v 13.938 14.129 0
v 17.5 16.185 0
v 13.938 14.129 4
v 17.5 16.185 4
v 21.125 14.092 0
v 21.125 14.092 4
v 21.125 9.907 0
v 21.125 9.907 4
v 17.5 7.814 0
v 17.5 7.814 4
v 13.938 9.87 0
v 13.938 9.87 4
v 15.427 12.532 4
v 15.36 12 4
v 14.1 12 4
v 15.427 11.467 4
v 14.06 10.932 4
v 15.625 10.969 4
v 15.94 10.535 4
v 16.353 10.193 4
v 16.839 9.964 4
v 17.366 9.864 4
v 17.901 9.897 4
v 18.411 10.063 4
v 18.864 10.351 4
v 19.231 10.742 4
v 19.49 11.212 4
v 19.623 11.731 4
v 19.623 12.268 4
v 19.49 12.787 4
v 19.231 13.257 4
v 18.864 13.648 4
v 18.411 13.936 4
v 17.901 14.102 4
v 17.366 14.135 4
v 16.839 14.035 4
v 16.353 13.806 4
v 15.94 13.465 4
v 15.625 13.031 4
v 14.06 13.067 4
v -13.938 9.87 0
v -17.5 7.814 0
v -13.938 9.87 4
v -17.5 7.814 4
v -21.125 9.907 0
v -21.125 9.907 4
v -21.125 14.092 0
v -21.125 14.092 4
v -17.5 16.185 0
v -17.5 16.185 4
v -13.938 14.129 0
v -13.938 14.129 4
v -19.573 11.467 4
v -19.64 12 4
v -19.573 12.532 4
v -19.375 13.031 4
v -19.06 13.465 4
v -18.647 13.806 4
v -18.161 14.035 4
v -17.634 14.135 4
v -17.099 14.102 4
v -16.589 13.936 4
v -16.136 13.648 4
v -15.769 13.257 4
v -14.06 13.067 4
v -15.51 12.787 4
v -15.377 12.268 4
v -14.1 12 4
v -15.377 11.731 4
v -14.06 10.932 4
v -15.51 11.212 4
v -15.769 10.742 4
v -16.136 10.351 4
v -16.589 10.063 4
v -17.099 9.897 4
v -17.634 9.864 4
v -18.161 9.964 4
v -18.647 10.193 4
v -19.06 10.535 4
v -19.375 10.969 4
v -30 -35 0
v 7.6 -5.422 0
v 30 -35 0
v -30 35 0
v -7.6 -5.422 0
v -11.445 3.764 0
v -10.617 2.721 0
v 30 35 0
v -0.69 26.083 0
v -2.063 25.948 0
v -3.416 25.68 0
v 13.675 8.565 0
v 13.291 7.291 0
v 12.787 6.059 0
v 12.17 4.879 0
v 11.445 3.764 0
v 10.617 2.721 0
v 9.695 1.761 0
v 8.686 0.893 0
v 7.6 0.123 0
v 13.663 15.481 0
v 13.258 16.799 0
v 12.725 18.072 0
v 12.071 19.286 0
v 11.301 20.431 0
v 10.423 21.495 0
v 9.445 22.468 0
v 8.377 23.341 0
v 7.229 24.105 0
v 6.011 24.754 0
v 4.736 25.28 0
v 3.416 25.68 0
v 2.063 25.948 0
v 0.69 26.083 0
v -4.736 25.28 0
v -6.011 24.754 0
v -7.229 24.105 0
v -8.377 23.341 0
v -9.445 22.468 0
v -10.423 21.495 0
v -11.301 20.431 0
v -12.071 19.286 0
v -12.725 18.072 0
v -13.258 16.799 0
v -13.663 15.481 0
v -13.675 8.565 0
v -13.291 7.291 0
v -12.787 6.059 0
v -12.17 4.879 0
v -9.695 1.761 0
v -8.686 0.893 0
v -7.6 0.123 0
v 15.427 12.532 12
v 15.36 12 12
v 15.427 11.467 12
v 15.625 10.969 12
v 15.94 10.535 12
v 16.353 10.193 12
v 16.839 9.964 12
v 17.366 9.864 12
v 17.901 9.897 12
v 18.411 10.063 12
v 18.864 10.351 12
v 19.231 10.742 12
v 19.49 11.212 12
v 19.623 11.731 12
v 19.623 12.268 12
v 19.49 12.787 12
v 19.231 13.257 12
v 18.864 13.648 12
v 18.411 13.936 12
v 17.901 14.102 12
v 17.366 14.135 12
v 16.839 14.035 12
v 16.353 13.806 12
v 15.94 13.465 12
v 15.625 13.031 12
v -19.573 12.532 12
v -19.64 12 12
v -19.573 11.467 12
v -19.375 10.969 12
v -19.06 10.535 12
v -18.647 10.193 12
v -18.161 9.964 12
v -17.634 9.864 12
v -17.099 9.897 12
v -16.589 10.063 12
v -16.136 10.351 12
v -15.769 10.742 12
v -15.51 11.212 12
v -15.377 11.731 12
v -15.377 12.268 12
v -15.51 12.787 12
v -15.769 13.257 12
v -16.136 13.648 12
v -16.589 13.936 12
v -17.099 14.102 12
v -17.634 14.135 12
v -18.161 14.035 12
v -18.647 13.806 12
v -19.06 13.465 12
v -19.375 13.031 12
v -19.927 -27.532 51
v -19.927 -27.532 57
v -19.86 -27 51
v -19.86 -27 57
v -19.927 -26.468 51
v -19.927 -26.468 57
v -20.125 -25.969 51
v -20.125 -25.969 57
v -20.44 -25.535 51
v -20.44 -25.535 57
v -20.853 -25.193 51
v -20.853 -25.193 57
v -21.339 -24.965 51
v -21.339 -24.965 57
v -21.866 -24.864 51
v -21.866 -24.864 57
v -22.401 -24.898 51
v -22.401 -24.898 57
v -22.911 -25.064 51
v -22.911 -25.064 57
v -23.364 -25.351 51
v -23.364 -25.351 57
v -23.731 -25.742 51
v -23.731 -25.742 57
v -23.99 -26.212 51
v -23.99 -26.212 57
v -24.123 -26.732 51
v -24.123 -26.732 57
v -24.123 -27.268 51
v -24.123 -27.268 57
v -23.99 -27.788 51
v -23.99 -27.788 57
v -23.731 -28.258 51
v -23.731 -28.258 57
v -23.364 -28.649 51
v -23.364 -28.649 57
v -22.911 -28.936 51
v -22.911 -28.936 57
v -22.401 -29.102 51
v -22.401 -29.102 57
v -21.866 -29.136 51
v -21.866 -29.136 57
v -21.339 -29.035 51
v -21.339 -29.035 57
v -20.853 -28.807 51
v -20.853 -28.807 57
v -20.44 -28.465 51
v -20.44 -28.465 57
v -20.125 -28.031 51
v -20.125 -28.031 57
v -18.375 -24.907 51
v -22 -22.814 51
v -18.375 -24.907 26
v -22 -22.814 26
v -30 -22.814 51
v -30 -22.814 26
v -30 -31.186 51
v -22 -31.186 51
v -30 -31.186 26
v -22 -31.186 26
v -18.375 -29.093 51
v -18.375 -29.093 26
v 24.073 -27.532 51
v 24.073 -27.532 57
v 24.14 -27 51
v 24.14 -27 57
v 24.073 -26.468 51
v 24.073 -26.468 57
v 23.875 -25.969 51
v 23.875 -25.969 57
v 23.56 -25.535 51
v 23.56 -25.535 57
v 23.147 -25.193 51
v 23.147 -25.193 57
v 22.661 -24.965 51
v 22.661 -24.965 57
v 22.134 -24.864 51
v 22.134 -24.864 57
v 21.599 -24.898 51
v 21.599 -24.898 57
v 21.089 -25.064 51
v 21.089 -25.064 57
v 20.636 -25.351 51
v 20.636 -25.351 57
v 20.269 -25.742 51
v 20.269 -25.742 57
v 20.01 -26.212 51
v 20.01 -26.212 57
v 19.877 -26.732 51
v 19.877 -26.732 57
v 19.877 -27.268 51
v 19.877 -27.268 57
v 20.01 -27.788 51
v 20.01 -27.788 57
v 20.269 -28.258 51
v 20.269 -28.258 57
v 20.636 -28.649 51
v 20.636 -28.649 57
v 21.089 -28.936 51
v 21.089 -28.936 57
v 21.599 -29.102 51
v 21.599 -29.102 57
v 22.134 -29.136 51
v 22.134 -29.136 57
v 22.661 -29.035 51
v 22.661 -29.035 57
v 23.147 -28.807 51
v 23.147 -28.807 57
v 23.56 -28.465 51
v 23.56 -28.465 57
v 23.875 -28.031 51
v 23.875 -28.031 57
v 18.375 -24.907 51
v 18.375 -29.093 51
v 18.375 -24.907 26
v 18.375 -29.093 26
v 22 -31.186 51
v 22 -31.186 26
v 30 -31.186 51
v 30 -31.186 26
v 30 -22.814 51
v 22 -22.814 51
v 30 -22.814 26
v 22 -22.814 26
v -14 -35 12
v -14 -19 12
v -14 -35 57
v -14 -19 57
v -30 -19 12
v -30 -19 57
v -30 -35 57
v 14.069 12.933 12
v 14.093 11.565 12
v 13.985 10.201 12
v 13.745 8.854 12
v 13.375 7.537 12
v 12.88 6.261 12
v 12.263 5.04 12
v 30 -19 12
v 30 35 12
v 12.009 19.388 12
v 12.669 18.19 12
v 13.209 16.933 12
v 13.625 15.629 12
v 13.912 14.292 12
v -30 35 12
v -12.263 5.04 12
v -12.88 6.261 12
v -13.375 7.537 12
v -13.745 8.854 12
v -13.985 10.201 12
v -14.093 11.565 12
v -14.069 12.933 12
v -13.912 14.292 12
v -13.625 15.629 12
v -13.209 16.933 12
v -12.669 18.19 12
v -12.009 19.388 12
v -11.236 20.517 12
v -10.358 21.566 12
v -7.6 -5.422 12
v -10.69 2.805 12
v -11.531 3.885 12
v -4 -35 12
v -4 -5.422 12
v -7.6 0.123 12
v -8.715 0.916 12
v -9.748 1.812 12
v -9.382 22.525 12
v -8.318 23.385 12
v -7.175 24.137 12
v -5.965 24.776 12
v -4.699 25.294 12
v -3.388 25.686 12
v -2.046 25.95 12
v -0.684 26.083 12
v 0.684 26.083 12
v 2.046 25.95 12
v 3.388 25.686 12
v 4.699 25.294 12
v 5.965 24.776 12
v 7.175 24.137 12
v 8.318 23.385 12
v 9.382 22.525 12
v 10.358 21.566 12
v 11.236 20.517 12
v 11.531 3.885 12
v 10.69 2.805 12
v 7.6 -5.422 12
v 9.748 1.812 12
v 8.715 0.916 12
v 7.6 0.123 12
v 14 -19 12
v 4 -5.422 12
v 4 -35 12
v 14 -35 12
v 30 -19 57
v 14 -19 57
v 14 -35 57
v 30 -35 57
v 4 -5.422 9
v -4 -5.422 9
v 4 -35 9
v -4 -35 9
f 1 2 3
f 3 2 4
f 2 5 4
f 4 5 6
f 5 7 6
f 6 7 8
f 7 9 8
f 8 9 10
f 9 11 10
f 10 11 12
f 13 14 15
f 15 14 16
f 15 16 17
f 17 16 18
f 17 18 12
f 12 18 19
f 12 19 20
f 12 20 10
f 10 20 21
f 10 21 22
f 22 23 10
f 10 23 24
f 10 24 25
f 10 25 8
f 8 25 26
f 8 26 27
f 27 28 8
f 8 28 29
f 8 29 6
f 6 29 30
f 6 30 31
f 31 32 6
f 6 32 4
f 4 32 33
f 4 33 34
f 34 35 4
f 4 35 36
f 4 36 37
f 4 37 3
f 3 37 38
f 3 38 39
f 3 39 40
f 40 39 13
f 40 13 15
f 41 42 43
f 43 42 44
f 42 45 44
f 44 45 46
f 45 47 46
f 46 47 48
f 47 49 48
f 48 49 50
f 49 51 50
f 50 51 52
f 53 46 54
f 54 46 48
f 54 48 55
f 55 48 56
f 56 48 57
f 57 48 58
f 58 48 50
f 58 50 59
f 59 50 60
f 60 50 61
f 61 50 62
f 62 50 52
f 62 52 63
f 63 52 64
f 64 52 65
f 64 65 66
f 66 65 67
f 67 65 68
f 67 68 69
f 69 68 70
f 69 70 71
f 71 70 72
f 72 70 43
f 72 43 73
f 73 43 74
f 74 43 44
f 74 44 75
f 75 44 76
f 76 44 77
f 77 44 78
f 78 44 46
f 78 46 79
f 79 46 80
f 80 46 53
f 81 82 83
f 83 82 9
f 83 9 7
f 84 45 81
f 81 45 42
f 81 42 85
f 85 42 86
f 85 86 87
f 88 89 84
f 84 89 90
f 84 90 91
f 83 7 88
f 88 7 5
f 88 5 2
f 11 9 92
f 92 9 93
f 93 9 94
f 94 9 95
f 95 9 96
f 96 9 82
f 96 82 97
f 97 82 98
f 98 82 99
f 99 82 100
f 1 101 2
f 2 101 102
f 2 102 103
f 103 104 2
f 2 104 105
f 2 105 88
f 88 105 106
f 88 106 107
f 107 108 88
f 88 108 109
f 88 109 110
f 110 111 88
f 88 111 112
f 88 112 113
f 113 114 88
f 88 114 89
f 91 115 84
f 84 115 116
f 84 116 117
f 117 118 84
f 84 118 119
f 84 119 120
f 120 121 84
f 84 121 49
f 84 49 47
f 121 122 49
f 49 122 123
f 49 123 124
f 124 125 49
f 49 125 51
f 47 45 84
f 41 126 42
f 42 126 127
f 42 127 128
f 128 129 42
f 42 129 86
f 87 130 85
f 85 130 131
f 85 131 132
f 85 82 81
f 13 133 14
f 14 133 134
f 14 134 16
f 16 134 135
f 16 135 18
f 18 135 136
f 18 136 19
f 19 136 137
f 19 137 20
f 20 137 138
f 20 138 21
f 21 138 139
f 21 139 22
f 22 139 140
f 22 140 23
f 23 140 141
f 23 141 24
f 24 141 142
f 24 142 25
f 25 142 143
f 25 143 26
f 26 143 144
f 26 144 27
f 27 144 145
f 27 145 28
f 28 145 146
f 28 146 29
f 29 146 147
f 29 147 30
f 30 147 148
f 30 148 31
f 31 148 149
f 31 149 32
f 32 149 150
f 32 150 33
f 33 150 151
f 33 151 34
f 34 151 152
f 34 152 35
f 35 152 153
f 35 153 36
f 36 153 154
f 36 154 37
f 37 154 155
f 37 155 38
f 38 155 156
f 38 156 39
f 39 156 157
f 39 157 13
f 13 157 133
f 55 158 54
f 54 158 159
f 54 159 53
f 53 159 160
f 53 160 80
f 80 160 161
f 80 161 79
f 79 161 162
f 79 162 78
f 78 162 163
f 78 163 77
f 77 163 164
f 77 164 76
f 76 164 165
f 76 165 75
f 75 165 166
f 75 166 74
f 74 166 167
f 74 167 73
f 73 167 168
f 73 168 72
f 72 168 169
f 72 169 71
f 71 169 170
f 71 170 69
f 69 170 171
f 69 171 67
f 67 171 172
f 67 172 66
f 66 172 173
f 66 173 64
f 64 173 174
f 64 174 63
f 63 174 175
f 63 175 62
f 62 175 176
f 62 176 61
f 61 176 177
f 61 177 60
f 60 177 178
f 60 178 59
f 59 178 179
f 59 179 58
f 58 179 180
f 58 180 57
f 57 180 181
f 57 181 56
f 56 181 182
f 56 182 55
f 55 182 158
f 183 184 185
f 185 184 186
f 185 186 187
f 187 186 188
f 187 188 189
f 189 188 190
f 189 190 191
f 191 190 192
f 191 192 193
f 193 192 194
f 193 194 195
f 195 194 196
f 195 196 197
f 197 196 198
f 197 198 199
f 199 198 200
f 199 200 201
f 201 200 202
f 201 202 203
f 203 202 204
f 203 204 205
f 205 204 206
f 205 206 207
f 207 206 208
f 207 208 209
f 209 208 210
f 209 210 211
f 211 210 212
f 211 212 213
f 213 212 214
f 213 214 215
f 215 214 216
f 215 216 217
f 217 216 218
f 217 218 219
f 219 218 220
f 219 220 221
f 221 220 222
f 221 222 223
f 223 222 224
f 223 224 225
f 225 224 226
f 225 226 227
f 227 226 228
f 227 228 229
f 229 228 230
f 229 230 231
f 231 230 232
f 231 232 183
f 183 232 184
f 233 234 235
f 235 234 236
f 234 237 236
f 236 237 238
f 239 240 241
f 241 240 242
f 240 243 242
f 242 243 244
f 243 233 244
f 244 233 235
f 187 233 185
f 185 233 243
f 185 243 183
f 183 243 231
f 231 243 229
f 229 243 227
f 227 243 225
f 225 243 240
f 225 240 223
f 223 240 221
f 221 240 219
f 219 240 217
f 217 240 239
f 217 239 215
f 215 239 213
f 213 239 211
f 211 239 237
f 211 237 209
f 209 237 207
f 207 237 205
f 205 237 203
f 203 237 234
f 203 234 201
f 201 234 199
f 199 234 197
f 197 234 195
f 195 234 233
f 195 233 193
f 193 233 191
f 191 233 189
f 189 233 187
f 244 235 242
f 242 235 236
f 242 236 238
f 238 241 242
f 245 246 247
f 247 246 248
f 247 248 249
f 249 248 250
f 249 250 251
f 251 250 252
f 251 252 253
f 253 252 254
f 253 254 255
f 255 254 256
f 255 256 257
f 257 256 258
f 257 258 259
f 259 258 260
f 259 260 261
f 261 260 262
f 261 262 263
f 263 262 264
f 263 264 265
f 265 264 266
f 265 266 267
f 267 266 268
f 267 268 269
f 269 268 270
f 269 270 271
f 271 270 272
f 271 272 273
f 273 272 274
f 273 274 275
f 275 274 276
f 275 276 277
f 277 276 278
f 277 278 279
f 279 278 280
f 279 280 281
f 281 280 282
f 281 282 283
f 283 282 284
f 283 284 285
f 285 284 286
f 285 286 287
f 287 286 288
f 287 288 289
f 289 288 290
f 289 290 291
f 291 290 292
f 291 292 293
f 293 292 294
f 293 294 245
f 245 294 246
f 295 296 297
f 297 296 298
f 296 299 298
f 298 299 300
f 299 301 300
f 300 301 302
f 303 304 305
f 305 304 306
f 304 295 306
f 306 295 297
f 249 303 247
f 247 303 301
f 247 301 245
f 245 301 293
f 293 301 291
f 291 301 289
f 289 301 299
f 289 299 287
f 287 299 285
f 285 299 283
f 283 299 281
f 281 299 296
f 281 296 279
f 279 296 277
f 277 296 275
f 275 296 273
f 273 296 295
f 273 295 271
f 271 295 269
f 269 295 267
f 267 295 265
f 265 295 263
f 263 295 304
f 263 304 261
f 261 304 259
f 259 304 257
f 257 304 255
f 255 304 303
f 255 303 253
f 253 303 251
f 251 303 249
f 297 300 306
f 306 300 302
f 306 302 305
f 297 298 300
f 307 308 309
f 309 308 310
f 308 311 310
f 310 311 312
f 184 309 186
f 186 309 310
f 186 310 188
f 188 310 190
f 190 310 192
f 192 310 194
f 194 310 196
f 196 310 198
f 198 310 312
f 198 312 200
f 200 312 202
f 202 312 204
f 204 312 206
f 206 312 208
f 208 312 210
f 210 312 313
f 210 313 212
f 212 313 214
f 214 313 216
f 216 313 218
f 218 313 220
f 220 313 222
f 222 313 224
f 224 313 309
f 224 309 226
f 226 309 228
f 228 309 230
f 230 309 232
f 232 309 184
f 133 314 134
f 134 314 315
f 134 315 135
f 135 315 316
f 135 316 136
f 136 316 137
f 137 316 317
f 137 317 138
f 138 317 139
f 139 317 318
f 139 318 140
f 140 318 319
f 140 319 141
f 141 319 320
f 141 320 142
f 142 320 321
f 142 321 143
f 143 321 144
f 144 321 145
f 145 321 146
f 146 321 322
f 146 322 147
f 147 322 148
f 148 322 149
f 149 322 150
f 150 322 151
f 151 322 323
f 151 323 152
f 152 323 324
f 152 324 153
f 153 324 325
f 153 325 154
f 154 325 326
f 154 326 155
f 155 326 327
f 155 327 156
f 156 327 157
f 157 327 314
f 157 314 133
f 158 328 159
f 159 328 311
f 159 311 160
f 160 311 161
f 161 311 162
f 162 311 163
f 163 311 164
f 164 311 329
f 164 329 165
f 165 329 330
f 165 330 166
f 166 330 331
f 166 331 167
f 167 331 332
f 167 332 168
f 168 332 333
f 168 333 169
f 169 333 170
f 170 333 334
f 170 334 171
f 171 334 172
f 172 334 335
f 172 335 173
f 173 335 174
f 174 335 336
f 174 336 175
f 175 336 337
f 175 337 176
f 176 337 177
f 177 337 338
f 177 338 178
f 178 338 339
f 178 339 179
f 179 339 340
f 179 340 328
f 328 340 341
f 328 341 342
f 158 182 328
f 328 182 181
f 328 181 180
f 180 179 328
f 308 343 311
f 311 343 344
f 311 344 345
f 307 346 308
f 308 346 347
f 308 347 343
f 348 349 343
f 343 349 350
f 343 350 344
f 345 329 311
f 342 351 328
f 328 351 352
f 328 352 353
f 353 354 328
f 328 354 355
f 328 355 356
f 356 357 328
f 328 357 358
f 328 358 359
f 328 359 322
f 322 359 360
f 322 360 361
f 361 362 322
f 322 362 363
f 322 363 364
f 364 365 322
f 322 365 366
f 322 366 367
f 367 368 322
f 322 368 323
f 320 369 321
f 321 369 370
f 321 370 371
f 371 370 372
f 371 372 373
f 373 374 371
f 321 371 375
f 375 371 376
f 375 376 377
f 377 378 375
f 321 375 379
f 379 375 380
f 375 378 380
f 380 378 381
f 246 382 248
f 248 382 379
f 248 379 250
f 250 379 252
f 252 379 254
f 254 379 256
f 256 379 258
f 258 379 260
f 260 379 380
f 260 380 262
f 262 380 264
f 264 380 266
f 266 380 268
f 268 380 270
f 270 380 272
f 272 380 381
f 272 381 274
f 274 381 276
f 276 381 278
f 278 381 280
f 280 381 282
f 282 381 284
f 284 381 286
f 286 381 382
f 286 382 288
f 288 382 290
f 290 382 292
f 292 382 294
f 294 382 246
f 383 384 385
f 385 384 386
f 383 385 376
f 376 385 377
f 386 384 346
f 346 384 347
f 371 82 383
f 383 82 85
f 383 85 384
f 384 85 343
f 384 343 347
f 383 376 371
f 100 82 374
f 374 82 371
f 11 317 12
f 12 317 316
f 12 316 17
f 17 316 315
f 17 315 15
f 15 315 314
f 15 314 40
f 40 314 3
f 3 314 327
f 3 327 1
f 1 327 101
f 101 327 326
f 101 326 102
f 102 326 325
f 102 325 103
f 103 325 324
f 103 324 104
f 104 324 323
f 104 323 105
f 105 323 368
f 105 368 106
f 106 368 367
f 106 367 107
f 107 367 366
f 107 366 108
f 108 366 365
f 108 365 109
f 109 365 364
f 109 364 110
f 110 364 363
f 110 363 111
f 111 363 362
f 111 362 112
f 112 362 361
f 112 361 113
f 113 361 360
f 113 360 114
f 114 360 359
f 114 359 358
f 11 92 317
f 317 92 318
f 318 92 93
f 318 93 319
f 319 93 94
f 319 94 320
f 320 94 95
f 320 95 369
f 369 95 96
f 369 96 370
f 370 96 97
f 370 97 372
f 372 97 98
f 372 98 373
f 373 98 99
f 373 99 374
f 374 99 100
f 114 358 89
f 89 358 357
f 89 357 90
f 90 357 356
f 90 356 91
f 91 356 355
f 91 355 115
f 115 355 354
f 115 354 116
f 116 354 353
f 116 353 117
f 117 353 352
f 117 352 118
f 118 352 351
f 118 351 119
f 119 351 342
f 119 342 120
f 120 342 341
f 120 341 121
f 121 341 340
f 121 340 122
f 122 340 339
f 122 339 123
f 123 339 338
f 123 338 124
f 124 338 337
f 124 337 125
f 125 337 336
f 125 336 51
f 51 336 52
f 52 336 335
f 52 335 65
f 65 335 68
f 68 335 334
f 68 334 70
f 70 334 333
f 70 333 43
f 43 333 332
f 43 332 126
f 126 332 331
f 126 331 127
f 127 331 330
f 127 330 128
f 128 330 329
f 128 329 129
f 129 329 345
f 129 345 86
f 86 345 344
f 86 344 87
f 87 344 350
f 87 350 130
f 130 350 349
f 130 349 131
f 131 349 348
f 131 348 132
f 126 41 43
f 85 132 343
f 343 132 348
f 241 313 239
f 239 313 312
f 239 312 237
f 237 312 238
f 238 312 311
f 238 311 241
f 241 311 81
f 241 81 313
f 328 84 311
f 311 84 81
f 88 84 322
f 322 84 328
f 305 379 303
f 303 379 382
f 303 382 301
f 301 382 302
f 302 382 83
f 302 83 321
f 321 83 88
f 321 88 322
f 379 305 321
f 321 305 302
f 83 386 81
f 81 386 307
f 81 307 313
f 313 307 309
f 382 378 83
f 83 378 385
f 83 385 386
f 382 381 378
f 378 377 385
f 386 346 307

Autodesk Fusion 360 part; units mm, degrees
sketch "01 - PRIMARY SUPPORT MECHANISM ( LEFT SIDE ) SKETCH" plane through (0, 0, 0) normal (0, 0, 1) x (1, 0, 0)
  line L0 (0, -35) -> (0, -5.422) construction
  line L1 (13.875, 9.9067) -> (17.5, 7.8138)
  circle A0 centre (17.5, 11.9996) radius 2.14
  line L2 (-13.875, 14.0925) -> (-17.5, 16.1854)
  circle A1 centre (-17.5, 11.9996) radius 2.14
  line L3 (-21.125, 14.0925) -> (-21.125, 9.9067)
  line L4 (4, -5.422) -> (4, -35)
  line L5 (30, 35) -> (30, -35)
  line L6 (-7.6, -5.422) -> (-7.6, 0.1231)
  line L7 (-4, -5.422) -> (-4, -35)
  line L8 (17.5, 7.8138) -> (21.125, 9.9067)
  line L9 (-21.125, 9.9067) -> (-17.5, 7.8138)
  line L10 (7.6, -5.422) -> (7.6, 0.1231)
  line L11 (21.125, 14.0925) -> (17.5, 16.1854)
  line L12 (-30, 35) -> (30, 35)
  line L13 (21.125, 9.9067) -> (21.125, 14.0925)
  line L14 (13.875, 14.0925) -> (13.875, 9.9067)
  line L15 (-17.5, 7.8138) -> (-13.875, 9.9067)
  line L16 (-30, -19) -> (30, -19) construction
  line L17 (30, -35) -> (-30, -35)
  line L18 (17.5, 16.1854) -> (13.875, 14.0925)
  line L19 (-17.5, 11.9996) -> (-17.5, 14.1396) construction
  line L20 (17.5, 11.9996) -> (17.5, 14.1396) construction
  line L21 (-17.5, 11.9996) -> (17.5, 11.9996) construction
  arc A2 (7.6, 0.1231) -> (-7.6, 0.1231) centre (0, 11.9996) ccw
  line L22 (-17.5, 16.1854) -> (-21.125, 14.0925)
  line L23 (-30, -35) -> (-30, 35)
  line L24 (-7.6, -5.422) -> (7.6, -5.422)
  line L25 (-13.875, 9.9067) -> (-13.875, 14.0925)
  point P0 (17.5, 11.9996)
  point P1 (-17.5, 11.9996)
  dimension "d1" = 60
  dimension "d2" = 70
  dimension "d5" = 16
  dimension "d6" = 29.578
  dimension "d7" = 15.2
  dimension "d8" = 5.5451
  dimension "d9" = 14.1
  dimension "d10" = 17.4216
  dimension "d11" = 8
  dimension "d12" = 4
  dimension "d13" = 35
  dimension "d14" = 4.28
  dimension "d15" = 3.625
  dimension "d16" = 4.28
  dimension "d17" = 3.625
  dimension "d19" = 35
  dimension "d20" = 30
extrude "Extrude1" add sketch "01 - PRIMARY SUPPORT MECHANISM ( LEFT SIDE ) SKETCH" along normal blind 12 contours L1 L8 L11 L13 L18 A2 | L1 L2 L3 L4 L5 L6 L7 L8 L9 L10 L11 L12 L13 L15 L17 L18 A2 L22 L23 L24 | L2 L3 L9 L15 A2 L22 | A0 | A1
extrude "Extrude2" add sketch "01 - PRIMARY SUPPORT MECHANISM ( LEFT SIDE ) SKETCH" along normal blind 9 contours L4 L7 L17 L24
sketch "02 - PRIMARY SUPPORT MECHANISM ( LEFT SIDE ) SKETCH" plane through (0, 0, 12) normal (0, 0, 1) x (-1, 0, 0)
  line L0 (-4, 5.422) -> (-4, 35)
  line L1 (-4, 35) -> (-30, 35)
  line L2 (-30, 35) -> (-30, -35)
  line L3 (-30, -35) -> (30, -35)
  line L4 (30, -35) -> (30, 35)
  line L5 (30, 35) -> (4, 35)
  line L6 (4, 35) -> (4, 5.422)
  line L7 (4, 5.422) -> (7.6, 5.422)
  line L8 (7.6, 5.422) -> (7.6, -0.1231)
  arc A0 (-7.6, -0.1231) -> (7.6, -0.1231) centre (0, -11.9996) ccw
  line L9 (-7.6, -0.1231) -> (-7.6, 5.422)
  line L10 (-7.6, 5.422) -> (-4, 5.422)
  line L11 (30, 35) -> (4, 35)
  line L12 (-4, 35) -> (-30, 35)
  line L13 (30, 35) -> (14, 35)
  line L14 (-14, 35) -> (-14, 19)
  line L15 (14, 35) -> (14, 19)
  line L16 (-30, 19) -> (-30, 35)
  line L17 (-30, 35) -> (-14, 35)
  line L18 (30, 19) -> (30, 35)
  line L19 (14, 19) -> (30, 19)
  line L20 (-14, 19) -> (-30, 19)
  dimension "d25" = 16
  dimension "d26" = 16
  dimension "d27" = 16
  dimension "d28" = 16
extrude "Extrude3" add sketch "02 - PRIMARY SUPPORT MECHANISM ( LEFT SIDE ) SKETCH" along normal blind 45 contours L1 L2 L12 L14 L16 L17 L20 | L4 L5 L11 L13 L15 L18 L19
sketch "03 - PRIMARY SUPPORT MECHANISM ( LEFT SIDE ) SKETCH" plane through (0, 0, 57) normal (0, 0, 1) x (-1, 0, 0)
  line L0 (-14, 19) -> (-14, 35)
  line L1 (-14, 35) -> (-30, 35)
  line L2 (-30, 35) -> (-30, 19)
  line L3 (-30, 19) -> (-14, 19)
  line L4 (-14, 35) -> (-30, 35)
  line L5 (-18.375, 29.0929) -> (-22, 31.1858)
  line L6 (-14, 19) -> (-14, 35)
  line L7 (-22, 22.8142) -> (-18.375, 24.9071)
  line L8 (-14, 27) -> (-30, 27) construction
  line L9 (-25.625, 29.0929) -> (-25.625, 24.9071)
  line L10 (-30, 19) -> (-14, 19)
  line L11 (-22, 23.375) -> (-22, 22.8142)
  line L12 (-25.625, 24.9071) -> (-22, 22.8142)
  line L13 (-22, 22.8142) -> (-30, 22.8142)
  line L14 (-18.375, 24.9071) -> (-18.375, 29.0929)
  line L15 (-22, 31.1858) -> (-22, 30.625)
  line L16 (-30, 31.1858) -> (-30, 22.8142)
  line L17 (-30, 35) -> (-30, 19)
  line L18 (-22, 31.1858) -> (-25.625, 29.0929)
  line L19 (-22, 31.1858) -> (-30, 31.1858)
  circle A0 centre (-22, 27) radius 2.14
  line L20 (-22, 19) -> (-22, 35) construction
  point P0 (-22, 27)
  dimension "d34" = 3.625
  dimension "d35" = 4.28
  dimension "d38" = 16
  dimension "d39" = 16
extrude "Extrude4" cut sketch "03 - PRIMARY SUPPORT MECHANISM ( LEFT SIDE ) SKETCH" against normal blind 25 from surface at -6 contours L2 L9 L12 L13 L16 L17 L18 L19 | L5 L7 L9 L12 L14 L18 | A0
extrude "Extrude5" cut sketch "03 - PRIMARY SUPPORT MECHANISM ( LEFT SIDE ) SKETCH" against normal blind 6 contours A0
sketch "04 - PRIMARY SUPPORT MECHANISM ( LEFT SIDE ) SKETCH" plane through (0, 0, 57) normal (0, 0, 1) x (-1, 0, 0)
  line L0 (14, 19) -> (30, 19)
  line L1 (30, 19) -> (30, 35)
  line L2 (30, 35) -> (14, 35)
  line L3 (14, 35) -> (14, 19)
  line L4 (22, 35) -> (22, 19) construction
  line L5 (30, 27) -> (14, 27) construction
  line L6 (22, 31.1858) -> (18.375, 29.0929)
  line L7 (18.375, 24.9071) -> (22, 22.8142)
  line L8 (30, 35) -> (14, 35)
  line L9 (22, 22.8142) -> (30, 22.8142)
  line L10 (30, 19) -> (30, 35)
  line L11 (25.625, 29.0929) -> (22, 31.1858)
  line L12 (30, 31.1858) -> (30, 22.8142)
  line L13 (22, 22.8142) -> (25.625, 24.9071)
  circle A0 centre (22, 27) radius 2.14
  line L14 (18.375, 29.0929) -> (18.375, 24.9071)
  line L15 (22, 31.1858) -> (30, 31.1858)
  line L16 (25.625, 24.9071) -> (25.625, 29.0929)
  line L17 (14, 19) -> (30, 19)
  line L18 (14, 35) -> (14, 19)
  point P0 (22, 27)
  dimension "d47" = 3.625
  dimension "d48" = 4.28
  dimension "d49" = 16
  dimension "d50" = 16
extrude "Extrude6" cut sketch "04 - PRIMARY SUPPORT MECHANISM ( LEFT SIDE ) SKETCH" against normal blind 25 from surface at -6 contours L1 L9 L10 L11 L12 L13 L15 L16 | L6 L7 L11 L13 L14 L16 | A0
extrude "Extrude7" cut sketch "04 - PRIMARY SUPPORT MECHANISM ( LEFT SIDE ) SKETCH" against normal blind 6 contours A0
extrude "Extrude8" cut sketch "01 - PRIMARY SUPPORT MECHANISM ( LEFT SIDE ) SKETCH" along normal blind 12 contours A0 | A1
extrude "Extrude9" cut sketch "01 - PRIMARY SUPPORT MECHANISM ( LEFT SIDE ) SKETCH" along normal blind 4 contours L1 L8 L11 L13 L18 A2 | L2 L3 L9 L15 A2 L22
